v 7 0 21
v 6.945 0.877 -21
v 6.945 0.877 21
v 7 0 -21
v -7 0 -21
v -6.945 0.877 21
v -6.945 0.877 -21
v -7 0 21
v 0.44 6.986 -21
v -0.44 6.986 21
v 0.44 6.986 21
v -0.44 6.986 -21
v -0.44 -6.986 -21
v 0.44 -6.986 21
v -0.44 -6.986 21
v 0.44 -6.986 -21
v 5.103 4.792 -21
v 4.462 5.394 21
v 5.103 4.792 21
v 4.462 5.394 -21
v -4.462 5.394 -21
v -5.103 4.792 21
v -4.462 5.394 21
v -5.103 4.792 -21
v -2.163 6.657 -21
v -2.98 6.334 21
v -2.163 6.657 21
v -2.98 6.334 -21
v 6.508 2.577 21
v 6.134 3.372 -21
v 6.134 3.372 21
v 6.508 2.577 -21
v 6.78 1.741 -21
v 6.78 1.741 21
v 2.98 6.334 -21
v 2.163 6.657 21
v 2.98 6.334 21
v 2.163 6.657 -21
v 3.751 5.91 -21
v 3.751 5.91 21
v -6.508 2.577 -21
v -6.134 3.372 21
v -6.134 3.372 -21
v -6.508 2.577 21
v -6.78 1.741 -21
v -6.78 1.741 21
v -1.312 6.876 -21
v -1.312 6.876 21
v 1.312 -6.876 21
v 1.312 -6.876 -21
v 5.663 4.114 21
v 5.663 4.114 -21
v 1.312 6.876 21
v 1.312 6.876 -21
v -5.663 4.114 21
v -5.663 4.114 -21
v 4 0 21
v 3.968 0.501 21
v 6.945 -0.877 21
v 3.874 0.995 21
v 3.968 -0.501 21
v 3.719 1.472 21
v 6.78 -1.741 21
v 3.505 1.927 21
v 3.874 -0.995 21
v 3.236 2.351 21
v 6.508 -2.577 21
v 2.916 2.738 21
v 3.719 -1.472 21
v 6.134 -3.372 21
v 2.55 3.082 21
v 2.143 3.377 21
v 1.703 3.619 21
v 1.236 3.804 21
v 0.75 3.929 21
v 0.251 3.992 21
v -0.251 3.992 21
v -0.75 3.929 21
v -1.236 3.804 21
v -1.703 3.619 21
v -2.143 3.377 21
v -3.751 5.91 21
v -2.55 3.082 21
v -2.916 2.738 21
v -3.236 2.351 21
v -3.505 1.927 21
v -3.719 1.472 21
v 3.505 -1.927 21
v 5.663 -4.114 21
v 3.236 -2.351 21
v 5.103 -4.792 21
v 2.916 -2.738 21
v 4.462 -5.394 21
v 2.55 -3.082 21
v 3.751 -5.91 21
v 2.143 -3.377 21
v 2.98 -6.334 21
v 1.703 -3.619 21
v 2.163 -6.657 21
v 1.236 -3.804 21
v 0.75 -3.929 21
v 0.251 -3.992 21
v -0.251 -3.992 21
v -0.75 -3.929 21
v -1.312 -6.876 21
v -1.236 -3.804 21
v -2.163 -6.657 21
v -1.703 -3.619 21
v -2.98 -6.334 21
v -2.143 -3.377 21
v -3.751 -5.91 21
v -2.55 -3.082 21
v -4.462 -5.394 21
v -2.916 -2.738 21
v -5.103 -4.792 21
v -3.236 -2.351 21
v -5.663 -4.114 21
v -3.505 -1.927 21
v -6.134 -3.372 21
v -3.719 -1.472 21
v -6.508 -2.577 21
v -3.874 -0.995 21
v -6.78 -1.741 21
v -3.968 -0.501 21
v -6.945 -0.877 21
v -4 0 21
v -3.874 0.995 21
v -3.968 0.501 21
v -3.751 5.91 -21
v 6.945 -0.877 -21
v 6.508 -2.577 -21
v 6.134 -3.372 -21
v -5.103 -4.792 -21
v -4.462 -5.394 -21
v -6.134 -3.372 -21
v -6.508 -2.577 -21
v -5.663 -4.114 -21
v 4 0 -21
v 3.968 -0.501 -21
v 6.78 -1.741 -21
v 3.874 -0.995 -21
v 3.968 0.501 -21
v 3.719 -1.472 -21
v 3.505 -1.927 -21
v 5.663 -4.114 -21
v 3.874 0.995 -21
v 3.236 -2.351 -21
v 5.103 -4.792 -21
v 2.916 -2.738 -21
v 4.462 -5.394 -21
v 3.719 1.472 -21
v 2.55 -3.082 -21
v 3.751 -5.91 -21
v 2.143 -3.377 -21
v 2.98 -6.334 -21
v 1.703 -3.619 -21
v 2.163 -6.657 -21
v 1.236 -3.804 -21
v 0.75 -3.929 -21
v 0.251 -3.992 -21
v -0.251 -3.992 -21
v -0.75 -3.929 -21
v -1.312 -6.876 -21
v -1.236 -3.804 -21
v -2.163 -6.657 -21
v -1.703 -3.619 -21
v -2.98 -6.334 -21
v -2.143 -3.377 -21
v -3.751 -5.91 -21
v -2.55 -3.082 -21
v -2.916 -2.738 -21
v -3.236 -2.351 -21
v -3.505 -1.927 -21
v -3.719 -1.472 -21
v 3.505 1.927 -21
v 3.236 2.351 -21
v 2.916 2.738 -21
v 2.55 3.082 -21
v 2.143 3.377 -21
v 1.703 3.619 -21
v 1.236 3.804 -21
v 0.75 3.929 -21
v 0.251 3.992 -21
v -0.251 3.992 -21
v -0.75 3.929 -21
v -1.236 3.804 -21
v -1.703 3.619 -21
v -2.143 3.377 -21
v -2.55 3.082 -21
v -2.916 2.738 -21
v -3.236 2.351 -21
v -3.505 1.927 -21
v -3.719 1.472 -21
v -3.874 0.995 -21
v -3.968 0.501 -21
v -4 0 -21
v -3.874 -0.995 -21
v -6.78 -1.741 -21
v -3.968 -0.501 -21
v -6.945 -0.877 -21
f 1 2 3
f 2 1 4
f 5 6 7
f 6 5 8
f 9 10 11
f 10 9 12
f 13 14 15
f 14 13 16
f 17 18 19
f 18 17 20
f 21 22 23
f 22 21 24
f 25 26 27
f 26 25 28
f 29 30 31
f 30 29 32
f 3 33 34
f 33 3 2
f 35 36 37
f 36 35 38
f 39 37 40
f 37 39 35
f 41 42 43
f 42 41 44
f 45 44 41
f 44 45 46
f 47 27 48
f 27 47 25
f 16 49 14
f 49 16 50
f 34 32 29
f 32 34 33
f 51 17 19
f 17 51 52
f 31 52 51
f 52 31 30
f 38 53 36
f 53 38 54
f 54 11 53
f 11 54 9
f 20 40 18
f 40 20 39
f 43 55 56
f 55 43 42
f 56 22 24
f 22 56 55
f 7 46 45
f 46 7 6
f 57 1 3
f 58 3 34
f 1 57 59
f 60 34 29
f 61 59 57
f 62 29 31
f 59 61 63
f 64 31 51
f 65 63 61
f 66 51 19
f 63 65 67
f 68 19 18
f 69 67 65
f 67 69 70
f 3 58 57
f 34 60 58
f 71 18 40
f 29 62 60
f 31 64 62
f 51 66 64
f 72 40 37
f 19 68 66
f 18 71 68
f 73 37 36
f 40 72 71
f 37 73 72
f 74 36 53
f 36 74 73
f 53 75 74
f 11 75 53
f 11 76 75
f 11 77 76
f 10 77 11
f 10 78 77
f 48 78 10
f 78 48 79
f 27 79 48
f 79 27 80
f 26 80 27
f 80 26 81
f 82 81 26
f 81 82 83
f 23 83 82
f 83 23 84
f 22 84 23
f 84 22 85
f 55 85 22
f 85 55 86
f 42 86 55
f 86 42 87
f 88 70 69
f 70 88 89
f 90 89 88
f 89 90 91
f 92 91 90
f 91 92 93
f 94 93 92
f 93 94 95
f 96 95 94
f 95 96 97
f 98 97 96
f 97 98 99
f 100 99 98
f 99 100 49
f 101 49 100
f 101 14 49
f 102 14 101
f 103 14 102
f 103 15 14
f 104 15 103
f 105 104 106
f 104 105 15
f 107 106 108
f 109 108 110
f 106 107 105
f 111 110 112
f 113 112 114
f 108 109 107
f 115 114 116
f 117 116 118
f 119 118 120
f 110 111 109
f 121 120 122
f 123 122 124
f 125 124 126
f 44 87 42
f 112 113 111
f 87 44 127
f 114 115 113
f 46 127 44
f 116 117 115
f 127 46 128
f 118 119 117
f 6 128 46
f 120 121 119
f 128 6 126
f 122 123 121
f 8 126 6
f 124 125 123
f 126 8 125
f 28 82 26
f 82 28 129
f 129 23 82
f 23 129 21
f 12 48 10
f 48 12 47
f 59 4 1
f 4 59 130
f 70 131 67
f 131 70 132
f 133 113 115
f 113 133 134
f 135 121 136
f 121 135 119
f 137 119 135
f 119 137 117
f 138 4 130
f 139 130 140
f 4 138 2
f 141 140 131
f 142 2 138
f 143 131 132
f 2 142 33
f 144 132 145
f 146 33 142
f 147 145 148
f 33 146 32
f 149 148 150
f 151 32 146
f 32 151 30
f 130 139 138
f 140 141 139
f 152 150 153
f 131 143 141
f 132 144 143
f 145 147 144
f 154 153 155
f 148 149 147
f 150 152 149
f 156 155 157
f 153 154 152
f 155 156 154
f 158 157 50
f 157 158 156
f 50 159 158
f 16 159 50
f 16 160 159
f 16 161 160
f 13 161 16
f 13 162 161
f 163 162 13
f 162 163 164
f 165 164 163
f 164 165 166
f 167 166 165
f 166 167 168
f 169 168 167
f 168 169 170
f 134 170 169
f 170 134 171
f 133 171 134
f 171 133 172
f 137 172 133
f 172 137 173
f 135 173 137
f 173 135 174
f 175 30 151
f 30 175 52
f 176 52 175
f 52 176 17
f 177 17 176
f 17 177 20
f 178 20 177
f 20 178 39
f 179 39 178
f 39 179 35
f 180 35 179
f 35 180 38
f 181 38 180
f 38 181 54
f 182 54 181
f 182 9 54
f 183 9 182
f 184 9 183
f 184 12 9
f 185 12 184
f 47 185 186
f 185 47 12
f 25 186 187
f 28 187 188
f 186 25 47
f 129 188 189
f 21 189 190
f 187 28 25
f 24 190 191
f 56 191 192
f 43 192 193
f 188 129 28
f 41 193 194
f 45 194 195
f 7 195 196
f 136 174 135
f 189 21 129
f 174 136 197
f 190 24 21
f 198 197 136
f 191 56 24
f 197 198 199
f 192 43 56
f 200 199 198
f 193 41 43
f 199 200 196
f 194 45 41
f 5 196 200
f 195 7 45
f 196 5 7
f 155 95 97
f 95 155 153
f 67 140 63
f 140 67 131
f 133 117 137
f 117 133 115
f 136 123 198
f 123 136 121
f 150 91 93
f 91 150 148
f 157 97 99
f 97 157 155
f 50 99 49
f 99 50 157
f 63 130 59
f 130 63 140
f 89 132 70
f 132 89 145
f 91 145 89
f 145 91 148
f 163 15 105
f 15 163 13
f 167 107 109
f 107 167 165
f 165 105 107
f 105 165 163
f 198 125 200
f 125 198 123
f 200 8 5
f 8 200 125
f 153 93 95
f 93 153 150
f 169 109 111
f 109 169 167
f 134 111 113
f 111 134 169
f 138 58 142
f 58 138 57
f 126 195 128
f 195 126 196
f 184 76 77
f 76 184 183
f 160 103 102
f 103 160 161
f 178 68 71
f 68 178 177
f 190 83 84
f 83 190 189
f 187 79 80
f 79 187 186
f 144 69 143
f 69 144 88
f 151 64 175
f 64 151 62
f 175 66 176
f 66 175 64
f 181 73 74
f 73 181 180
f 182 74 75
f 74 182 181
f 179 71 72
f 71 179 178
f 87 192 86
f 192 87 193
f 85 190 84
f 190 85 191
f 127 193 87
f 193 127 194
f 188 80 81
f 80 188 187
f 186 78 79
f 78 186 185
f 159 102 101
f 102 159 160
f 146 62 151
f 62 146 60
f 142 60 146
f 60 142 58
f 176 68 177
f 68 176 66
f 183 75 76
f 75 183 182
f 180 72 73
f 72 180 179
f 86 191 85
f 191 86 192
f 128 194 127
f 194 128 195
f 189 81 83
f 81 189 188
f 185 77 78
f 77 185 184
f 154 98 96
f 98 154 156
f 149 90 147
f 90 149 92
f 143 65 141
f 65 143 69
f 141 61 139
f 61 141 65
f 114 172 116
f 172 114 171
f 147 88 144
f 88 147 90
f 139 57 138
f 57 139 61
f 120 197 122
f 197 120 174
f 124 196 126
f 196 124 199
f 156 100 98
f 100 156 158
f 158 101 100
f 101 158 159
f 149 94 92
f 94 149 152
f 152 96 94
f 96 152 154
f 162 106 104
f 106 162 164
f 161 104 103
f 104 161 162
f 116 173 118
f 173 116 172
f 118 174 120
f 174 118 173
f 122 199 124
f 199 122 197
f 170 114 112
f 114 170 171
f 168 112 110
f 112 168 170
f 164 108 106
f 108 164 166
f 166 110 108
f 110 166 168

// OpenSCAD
$fn = 50;


difference() {
	union() {
		translate(v = [0, 0, -21.0000000000]) {
			cylinder(h = 42, r = 7.0000000000);
		}
	}
	union() {
		translate(v = [0, 0, -100.0000000000]) {
			cylinder(h = 200, r = 4);
		}
	}
}
